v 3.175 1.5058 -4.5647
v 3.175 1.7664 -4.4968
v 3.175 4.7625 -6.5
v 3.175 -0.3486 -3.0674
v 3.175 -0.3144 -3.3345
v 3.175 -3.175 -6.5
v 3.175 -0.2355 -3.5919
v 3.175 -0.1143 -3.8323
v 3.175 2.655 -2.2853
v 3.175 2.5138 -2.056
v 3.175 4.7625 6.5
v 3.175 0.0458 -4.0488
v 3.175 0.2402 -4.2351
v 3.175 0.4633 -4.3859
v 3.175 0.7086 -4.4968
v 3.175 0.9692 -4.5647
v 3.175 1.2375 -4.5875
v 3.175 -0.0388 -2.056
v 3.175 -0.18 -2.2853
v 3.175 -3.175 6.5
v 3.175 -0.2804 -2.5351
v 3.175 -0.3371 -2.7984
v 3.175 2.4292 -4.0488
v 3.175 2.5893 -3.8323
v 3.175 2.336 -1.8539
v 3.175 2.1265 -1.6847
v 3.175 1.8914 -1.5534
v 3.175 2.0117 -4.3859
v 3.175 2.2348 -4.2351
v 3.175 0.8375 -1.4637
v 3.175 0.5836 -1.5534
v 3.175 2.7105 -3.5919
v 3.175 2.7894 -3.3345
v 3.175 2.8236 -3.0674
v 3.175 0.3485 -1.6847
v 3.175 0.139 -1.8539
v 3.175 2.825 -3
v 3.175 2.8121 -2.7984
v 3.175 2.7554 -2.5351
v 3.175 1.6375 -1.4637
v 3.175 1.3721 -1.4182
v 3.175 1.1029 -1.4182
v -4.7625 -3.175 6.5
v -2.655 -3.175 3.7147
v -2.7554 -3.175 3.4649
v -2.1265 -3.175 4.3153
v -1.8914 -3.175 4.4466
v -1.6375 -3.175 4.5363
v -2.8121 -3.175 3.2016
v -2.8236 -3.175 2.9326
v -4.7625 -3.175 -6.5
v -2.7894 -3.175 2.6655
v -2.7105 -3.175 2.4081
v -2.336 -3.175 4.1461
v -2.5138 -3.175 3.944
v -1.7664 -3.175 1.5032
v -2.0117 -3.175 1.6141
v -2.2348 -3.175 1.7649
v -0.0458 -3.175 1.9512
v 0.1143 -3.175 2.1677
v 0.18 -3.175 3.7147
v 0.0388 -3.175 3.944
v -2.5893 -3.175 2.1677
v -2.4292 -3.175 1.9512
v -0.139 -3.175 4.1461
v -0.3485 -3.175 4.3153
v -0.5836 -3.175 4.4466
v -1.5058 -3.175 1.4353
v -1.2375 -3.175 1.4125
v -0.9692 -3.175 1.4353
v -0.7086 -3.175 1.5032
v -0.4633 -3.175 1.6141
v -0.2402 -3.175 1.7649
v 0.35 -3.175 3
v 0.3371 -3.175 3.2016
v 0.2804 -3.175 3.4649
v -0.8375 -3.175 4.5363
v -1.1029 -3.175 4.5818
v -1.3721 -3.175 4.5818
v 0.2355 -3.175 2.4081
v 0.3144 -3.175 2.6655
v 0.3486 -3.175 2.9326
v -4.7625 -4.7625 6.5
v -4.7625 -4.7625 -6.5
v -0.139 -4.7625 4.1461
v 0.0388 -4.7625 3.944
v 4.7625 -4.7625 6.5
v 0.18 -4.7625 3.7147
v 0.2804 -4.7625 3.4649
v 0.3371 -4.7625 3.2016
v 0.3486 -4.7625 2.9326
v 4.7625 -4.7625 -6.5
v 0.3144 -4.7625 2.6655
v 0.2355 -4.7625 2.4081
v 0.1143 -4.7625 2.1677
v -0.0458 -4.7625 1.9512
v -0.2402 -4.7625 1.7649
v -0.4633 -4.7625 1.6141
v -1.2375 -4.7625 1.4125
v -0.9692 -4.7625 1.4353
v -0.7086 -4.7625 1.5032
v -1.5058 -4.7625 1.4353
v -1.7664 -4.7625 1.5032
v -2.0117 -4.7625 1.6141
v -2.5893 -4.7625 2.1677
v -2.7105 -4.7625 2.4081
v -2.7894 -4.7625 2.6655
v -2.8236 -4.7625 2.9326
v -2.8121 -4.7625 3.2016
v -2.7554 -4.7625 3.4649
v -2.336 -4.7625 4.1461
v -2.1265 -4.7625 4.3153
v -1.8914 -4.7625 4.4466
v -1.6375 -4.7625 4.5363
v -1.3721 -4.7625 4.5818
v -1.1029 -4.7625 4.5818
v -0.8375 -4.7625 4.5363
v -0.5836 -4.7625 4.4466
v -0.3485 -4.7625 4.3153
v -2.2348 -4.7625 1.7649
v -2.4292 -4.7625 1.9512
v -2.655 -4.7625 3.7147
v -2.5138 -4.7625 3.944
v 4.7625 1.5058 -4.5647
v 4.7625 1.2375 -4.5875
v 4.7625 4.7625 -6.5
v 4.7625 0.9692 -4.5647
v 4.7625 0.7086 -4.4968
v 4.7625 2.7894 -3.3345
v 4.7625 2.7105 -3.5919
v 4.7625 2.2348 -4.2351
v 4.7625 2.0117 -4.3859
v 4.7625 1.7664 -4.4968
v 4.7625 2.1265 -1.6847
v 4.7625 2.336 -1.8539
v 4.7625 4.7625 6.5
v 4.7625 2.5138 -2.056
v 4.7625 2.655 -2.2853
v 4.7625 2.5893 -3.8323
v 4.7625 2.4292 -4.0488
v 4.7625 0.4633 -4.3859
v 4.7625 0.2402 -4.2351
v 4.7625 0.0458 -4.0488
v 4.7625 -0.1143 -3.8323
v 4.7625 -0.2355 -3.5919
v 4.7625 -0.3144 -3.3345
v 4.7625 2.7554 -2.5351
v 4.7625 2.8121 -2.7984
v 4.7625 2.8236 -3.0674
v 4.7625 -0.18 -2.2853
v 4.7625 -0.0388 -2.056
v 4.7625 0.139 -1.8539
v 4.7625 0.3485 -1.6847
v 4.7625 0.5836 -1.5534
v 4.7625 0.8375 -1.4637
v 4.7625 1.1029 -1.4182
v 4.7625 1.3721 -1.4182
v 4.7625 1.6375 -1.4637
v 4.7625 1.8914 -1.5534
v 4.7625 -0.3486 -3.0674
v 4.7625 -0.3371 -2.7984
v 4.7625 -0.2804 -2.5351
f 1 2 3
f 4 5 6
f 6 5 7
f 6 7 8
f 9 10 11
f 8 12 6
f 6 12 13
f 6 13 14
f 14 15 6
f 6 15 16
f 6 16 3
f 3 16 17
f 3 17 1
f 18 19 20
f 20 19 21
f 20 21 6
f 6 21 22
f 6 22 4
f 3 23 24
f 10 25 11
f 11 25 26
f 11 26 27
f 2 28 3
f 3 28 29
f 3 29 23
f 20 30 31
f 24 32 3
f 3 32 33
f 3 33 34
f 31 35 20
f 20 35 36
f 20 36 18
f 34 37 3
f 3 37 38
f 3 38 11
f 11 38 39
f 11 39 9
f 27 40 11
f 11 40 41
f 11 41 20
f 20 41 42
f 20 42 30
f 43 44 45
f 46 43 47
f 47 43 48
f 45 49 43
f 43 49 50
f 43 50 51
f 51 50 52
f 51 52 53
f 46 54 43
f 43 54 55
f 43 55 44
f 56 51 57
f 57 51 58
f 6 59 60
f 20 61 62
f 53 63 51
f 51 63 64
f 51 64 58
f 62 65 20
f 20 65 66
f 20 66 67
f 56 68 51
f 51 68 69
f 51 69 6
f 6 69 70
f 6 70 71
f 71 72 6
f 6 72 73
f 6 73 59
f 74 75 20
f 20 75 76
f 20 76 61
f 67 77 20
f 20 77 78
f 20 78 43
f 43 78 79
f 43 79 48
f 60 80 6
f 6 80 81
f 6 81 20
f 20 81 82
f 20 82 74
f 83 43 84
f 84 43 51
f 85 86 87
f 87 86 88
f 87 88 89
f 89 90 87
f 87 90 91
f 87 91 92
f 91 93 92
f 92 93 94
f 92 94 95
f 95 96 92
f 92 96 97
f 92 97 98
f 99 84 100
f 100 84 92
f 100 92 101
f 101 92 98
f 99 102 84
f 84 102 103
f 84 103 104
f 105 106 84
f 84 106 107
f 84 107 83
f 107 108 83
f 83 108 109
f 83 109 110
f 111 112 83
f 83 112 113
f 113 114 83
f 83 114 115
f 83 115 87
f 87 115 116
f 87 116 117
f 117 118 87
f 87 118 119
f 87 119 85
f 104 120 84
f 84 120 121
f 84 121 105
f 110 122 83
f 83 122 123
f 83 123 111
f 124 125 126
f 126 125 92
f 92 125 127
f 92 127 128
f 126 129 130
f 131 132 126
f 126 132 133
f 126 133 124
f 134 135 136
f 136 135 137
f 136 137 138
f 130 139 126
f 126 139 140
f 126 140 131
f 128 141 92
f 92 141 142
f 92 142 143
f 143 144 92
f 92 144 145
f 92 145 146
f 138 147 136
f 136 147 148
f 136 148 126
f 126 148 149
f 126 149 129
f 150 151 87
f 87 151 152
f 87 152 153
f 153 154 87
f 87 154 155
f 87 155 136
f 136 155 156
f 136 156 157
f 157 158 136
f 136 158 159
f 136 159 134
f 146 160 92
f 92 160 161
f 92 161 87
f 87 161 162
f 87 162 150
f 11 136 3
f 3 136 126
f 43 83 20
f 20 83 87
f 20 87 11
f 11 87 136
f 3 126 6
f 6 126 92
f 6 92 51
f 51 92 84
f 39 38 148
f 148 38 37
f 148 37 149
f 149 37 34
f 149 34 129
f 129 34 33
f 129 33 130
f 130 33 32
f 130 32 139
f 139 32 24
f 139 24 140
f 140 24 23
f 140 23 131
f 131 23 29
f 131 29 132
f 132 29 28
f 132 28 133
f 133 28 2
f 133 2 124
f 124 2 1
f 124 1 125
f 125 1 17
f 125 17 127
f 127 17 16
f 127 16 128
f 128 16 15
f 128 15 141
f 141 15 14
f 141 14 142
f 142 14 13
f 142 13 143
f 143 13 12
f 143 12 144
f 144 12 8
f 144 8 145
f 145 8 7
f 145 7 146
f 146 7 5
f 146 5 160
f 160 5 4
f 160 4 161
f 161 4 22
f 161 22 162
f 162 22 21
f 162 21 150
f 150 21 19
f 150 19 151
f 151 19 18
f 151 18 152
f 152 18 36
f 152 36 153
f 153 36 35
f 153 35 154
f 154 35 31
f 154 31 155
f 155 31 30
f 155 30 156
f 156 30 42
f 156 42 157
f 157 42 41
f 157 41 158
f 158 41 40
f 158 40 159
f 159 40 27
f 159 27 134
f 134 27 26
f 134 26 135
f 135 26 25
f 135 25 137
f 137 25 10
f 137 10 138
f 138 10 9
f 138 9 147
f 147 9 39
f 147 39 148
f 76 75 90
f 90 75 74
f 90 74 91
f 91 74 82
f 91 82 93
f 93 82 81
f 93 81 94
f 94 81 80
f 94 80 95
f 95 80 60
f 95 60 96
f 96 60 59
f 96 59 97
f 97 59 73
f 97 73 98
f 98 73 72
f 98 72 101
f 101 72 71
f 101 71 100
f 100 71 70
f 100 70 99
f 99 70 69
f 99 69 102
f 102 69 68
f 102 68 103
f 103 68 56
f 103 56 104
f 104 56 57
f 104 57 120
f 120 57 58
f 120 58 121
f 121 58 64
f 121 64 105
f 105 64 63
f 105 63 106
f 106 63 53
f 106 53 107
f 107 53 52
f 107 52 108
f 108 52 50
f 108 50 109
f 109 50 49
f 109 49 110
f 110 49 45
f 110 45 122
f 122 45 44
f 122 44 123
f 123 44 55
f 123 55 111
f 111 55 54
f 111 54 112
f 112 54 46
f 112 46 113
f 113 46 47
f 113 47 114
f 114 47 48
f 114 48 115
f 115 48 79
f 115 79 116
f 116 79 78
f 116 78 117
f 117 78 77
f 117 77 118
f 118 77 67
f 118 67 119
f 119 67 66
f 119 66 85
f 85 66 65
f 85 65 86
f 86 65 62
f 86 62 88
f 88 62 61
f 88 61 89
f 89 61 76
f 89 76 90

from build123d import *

# Parameters (mm, degrees)
BOSS_EXTRUDE1_DEPTH = 6.5
SKETCH4_R           = 1.5875
CUT_EXTRUDE1_DEPTH  = 10
SKETCH5_R           = 1.5875
CUT_EXTRUDE2_DEPTH  = 10


with BuildPart() as part:
    # Sketch3 → Boss-Extrude1 (new body, symmetric)
    with BuildSketch(Plane.XY):
        Polygon((3.175, -3.175), (-4.7625, -3.175), (-4.7625, -4.7625), (4.7625, -4.7625), (4.7625, 4.7625), (3.175, 4.7625), align=None)
    extrude(amount=BOSS_EXTRUDE1_DEPTH, both=True)

    # Sketch4 → Cut-Extrude1 (cut)
    with BuildSketch(Plane(origin=(4.7625, 0, 0), x_dir=(0, 0, -1), z_dir=(1, 0, 0))):
        with Locations((3, 1.2375)):
            Circle(SKETCH4_R)
    extrude(amount=-CUT_EXTRUDE1_DEPTH, mode=Mode.SUBTRACT)

    # Sketch5 → Cut-Extrude2 (cut)
    with BuildSketch(Plane.XZ.offset(4.7625)):
        with Locations((-1.2375, 3)):
            Circle(SKETCH5_R)
    extrude(amount=-CUT_EXTRUDE2_DEPTH, mode=Mode.SUBTRACT)


solid = part.part
